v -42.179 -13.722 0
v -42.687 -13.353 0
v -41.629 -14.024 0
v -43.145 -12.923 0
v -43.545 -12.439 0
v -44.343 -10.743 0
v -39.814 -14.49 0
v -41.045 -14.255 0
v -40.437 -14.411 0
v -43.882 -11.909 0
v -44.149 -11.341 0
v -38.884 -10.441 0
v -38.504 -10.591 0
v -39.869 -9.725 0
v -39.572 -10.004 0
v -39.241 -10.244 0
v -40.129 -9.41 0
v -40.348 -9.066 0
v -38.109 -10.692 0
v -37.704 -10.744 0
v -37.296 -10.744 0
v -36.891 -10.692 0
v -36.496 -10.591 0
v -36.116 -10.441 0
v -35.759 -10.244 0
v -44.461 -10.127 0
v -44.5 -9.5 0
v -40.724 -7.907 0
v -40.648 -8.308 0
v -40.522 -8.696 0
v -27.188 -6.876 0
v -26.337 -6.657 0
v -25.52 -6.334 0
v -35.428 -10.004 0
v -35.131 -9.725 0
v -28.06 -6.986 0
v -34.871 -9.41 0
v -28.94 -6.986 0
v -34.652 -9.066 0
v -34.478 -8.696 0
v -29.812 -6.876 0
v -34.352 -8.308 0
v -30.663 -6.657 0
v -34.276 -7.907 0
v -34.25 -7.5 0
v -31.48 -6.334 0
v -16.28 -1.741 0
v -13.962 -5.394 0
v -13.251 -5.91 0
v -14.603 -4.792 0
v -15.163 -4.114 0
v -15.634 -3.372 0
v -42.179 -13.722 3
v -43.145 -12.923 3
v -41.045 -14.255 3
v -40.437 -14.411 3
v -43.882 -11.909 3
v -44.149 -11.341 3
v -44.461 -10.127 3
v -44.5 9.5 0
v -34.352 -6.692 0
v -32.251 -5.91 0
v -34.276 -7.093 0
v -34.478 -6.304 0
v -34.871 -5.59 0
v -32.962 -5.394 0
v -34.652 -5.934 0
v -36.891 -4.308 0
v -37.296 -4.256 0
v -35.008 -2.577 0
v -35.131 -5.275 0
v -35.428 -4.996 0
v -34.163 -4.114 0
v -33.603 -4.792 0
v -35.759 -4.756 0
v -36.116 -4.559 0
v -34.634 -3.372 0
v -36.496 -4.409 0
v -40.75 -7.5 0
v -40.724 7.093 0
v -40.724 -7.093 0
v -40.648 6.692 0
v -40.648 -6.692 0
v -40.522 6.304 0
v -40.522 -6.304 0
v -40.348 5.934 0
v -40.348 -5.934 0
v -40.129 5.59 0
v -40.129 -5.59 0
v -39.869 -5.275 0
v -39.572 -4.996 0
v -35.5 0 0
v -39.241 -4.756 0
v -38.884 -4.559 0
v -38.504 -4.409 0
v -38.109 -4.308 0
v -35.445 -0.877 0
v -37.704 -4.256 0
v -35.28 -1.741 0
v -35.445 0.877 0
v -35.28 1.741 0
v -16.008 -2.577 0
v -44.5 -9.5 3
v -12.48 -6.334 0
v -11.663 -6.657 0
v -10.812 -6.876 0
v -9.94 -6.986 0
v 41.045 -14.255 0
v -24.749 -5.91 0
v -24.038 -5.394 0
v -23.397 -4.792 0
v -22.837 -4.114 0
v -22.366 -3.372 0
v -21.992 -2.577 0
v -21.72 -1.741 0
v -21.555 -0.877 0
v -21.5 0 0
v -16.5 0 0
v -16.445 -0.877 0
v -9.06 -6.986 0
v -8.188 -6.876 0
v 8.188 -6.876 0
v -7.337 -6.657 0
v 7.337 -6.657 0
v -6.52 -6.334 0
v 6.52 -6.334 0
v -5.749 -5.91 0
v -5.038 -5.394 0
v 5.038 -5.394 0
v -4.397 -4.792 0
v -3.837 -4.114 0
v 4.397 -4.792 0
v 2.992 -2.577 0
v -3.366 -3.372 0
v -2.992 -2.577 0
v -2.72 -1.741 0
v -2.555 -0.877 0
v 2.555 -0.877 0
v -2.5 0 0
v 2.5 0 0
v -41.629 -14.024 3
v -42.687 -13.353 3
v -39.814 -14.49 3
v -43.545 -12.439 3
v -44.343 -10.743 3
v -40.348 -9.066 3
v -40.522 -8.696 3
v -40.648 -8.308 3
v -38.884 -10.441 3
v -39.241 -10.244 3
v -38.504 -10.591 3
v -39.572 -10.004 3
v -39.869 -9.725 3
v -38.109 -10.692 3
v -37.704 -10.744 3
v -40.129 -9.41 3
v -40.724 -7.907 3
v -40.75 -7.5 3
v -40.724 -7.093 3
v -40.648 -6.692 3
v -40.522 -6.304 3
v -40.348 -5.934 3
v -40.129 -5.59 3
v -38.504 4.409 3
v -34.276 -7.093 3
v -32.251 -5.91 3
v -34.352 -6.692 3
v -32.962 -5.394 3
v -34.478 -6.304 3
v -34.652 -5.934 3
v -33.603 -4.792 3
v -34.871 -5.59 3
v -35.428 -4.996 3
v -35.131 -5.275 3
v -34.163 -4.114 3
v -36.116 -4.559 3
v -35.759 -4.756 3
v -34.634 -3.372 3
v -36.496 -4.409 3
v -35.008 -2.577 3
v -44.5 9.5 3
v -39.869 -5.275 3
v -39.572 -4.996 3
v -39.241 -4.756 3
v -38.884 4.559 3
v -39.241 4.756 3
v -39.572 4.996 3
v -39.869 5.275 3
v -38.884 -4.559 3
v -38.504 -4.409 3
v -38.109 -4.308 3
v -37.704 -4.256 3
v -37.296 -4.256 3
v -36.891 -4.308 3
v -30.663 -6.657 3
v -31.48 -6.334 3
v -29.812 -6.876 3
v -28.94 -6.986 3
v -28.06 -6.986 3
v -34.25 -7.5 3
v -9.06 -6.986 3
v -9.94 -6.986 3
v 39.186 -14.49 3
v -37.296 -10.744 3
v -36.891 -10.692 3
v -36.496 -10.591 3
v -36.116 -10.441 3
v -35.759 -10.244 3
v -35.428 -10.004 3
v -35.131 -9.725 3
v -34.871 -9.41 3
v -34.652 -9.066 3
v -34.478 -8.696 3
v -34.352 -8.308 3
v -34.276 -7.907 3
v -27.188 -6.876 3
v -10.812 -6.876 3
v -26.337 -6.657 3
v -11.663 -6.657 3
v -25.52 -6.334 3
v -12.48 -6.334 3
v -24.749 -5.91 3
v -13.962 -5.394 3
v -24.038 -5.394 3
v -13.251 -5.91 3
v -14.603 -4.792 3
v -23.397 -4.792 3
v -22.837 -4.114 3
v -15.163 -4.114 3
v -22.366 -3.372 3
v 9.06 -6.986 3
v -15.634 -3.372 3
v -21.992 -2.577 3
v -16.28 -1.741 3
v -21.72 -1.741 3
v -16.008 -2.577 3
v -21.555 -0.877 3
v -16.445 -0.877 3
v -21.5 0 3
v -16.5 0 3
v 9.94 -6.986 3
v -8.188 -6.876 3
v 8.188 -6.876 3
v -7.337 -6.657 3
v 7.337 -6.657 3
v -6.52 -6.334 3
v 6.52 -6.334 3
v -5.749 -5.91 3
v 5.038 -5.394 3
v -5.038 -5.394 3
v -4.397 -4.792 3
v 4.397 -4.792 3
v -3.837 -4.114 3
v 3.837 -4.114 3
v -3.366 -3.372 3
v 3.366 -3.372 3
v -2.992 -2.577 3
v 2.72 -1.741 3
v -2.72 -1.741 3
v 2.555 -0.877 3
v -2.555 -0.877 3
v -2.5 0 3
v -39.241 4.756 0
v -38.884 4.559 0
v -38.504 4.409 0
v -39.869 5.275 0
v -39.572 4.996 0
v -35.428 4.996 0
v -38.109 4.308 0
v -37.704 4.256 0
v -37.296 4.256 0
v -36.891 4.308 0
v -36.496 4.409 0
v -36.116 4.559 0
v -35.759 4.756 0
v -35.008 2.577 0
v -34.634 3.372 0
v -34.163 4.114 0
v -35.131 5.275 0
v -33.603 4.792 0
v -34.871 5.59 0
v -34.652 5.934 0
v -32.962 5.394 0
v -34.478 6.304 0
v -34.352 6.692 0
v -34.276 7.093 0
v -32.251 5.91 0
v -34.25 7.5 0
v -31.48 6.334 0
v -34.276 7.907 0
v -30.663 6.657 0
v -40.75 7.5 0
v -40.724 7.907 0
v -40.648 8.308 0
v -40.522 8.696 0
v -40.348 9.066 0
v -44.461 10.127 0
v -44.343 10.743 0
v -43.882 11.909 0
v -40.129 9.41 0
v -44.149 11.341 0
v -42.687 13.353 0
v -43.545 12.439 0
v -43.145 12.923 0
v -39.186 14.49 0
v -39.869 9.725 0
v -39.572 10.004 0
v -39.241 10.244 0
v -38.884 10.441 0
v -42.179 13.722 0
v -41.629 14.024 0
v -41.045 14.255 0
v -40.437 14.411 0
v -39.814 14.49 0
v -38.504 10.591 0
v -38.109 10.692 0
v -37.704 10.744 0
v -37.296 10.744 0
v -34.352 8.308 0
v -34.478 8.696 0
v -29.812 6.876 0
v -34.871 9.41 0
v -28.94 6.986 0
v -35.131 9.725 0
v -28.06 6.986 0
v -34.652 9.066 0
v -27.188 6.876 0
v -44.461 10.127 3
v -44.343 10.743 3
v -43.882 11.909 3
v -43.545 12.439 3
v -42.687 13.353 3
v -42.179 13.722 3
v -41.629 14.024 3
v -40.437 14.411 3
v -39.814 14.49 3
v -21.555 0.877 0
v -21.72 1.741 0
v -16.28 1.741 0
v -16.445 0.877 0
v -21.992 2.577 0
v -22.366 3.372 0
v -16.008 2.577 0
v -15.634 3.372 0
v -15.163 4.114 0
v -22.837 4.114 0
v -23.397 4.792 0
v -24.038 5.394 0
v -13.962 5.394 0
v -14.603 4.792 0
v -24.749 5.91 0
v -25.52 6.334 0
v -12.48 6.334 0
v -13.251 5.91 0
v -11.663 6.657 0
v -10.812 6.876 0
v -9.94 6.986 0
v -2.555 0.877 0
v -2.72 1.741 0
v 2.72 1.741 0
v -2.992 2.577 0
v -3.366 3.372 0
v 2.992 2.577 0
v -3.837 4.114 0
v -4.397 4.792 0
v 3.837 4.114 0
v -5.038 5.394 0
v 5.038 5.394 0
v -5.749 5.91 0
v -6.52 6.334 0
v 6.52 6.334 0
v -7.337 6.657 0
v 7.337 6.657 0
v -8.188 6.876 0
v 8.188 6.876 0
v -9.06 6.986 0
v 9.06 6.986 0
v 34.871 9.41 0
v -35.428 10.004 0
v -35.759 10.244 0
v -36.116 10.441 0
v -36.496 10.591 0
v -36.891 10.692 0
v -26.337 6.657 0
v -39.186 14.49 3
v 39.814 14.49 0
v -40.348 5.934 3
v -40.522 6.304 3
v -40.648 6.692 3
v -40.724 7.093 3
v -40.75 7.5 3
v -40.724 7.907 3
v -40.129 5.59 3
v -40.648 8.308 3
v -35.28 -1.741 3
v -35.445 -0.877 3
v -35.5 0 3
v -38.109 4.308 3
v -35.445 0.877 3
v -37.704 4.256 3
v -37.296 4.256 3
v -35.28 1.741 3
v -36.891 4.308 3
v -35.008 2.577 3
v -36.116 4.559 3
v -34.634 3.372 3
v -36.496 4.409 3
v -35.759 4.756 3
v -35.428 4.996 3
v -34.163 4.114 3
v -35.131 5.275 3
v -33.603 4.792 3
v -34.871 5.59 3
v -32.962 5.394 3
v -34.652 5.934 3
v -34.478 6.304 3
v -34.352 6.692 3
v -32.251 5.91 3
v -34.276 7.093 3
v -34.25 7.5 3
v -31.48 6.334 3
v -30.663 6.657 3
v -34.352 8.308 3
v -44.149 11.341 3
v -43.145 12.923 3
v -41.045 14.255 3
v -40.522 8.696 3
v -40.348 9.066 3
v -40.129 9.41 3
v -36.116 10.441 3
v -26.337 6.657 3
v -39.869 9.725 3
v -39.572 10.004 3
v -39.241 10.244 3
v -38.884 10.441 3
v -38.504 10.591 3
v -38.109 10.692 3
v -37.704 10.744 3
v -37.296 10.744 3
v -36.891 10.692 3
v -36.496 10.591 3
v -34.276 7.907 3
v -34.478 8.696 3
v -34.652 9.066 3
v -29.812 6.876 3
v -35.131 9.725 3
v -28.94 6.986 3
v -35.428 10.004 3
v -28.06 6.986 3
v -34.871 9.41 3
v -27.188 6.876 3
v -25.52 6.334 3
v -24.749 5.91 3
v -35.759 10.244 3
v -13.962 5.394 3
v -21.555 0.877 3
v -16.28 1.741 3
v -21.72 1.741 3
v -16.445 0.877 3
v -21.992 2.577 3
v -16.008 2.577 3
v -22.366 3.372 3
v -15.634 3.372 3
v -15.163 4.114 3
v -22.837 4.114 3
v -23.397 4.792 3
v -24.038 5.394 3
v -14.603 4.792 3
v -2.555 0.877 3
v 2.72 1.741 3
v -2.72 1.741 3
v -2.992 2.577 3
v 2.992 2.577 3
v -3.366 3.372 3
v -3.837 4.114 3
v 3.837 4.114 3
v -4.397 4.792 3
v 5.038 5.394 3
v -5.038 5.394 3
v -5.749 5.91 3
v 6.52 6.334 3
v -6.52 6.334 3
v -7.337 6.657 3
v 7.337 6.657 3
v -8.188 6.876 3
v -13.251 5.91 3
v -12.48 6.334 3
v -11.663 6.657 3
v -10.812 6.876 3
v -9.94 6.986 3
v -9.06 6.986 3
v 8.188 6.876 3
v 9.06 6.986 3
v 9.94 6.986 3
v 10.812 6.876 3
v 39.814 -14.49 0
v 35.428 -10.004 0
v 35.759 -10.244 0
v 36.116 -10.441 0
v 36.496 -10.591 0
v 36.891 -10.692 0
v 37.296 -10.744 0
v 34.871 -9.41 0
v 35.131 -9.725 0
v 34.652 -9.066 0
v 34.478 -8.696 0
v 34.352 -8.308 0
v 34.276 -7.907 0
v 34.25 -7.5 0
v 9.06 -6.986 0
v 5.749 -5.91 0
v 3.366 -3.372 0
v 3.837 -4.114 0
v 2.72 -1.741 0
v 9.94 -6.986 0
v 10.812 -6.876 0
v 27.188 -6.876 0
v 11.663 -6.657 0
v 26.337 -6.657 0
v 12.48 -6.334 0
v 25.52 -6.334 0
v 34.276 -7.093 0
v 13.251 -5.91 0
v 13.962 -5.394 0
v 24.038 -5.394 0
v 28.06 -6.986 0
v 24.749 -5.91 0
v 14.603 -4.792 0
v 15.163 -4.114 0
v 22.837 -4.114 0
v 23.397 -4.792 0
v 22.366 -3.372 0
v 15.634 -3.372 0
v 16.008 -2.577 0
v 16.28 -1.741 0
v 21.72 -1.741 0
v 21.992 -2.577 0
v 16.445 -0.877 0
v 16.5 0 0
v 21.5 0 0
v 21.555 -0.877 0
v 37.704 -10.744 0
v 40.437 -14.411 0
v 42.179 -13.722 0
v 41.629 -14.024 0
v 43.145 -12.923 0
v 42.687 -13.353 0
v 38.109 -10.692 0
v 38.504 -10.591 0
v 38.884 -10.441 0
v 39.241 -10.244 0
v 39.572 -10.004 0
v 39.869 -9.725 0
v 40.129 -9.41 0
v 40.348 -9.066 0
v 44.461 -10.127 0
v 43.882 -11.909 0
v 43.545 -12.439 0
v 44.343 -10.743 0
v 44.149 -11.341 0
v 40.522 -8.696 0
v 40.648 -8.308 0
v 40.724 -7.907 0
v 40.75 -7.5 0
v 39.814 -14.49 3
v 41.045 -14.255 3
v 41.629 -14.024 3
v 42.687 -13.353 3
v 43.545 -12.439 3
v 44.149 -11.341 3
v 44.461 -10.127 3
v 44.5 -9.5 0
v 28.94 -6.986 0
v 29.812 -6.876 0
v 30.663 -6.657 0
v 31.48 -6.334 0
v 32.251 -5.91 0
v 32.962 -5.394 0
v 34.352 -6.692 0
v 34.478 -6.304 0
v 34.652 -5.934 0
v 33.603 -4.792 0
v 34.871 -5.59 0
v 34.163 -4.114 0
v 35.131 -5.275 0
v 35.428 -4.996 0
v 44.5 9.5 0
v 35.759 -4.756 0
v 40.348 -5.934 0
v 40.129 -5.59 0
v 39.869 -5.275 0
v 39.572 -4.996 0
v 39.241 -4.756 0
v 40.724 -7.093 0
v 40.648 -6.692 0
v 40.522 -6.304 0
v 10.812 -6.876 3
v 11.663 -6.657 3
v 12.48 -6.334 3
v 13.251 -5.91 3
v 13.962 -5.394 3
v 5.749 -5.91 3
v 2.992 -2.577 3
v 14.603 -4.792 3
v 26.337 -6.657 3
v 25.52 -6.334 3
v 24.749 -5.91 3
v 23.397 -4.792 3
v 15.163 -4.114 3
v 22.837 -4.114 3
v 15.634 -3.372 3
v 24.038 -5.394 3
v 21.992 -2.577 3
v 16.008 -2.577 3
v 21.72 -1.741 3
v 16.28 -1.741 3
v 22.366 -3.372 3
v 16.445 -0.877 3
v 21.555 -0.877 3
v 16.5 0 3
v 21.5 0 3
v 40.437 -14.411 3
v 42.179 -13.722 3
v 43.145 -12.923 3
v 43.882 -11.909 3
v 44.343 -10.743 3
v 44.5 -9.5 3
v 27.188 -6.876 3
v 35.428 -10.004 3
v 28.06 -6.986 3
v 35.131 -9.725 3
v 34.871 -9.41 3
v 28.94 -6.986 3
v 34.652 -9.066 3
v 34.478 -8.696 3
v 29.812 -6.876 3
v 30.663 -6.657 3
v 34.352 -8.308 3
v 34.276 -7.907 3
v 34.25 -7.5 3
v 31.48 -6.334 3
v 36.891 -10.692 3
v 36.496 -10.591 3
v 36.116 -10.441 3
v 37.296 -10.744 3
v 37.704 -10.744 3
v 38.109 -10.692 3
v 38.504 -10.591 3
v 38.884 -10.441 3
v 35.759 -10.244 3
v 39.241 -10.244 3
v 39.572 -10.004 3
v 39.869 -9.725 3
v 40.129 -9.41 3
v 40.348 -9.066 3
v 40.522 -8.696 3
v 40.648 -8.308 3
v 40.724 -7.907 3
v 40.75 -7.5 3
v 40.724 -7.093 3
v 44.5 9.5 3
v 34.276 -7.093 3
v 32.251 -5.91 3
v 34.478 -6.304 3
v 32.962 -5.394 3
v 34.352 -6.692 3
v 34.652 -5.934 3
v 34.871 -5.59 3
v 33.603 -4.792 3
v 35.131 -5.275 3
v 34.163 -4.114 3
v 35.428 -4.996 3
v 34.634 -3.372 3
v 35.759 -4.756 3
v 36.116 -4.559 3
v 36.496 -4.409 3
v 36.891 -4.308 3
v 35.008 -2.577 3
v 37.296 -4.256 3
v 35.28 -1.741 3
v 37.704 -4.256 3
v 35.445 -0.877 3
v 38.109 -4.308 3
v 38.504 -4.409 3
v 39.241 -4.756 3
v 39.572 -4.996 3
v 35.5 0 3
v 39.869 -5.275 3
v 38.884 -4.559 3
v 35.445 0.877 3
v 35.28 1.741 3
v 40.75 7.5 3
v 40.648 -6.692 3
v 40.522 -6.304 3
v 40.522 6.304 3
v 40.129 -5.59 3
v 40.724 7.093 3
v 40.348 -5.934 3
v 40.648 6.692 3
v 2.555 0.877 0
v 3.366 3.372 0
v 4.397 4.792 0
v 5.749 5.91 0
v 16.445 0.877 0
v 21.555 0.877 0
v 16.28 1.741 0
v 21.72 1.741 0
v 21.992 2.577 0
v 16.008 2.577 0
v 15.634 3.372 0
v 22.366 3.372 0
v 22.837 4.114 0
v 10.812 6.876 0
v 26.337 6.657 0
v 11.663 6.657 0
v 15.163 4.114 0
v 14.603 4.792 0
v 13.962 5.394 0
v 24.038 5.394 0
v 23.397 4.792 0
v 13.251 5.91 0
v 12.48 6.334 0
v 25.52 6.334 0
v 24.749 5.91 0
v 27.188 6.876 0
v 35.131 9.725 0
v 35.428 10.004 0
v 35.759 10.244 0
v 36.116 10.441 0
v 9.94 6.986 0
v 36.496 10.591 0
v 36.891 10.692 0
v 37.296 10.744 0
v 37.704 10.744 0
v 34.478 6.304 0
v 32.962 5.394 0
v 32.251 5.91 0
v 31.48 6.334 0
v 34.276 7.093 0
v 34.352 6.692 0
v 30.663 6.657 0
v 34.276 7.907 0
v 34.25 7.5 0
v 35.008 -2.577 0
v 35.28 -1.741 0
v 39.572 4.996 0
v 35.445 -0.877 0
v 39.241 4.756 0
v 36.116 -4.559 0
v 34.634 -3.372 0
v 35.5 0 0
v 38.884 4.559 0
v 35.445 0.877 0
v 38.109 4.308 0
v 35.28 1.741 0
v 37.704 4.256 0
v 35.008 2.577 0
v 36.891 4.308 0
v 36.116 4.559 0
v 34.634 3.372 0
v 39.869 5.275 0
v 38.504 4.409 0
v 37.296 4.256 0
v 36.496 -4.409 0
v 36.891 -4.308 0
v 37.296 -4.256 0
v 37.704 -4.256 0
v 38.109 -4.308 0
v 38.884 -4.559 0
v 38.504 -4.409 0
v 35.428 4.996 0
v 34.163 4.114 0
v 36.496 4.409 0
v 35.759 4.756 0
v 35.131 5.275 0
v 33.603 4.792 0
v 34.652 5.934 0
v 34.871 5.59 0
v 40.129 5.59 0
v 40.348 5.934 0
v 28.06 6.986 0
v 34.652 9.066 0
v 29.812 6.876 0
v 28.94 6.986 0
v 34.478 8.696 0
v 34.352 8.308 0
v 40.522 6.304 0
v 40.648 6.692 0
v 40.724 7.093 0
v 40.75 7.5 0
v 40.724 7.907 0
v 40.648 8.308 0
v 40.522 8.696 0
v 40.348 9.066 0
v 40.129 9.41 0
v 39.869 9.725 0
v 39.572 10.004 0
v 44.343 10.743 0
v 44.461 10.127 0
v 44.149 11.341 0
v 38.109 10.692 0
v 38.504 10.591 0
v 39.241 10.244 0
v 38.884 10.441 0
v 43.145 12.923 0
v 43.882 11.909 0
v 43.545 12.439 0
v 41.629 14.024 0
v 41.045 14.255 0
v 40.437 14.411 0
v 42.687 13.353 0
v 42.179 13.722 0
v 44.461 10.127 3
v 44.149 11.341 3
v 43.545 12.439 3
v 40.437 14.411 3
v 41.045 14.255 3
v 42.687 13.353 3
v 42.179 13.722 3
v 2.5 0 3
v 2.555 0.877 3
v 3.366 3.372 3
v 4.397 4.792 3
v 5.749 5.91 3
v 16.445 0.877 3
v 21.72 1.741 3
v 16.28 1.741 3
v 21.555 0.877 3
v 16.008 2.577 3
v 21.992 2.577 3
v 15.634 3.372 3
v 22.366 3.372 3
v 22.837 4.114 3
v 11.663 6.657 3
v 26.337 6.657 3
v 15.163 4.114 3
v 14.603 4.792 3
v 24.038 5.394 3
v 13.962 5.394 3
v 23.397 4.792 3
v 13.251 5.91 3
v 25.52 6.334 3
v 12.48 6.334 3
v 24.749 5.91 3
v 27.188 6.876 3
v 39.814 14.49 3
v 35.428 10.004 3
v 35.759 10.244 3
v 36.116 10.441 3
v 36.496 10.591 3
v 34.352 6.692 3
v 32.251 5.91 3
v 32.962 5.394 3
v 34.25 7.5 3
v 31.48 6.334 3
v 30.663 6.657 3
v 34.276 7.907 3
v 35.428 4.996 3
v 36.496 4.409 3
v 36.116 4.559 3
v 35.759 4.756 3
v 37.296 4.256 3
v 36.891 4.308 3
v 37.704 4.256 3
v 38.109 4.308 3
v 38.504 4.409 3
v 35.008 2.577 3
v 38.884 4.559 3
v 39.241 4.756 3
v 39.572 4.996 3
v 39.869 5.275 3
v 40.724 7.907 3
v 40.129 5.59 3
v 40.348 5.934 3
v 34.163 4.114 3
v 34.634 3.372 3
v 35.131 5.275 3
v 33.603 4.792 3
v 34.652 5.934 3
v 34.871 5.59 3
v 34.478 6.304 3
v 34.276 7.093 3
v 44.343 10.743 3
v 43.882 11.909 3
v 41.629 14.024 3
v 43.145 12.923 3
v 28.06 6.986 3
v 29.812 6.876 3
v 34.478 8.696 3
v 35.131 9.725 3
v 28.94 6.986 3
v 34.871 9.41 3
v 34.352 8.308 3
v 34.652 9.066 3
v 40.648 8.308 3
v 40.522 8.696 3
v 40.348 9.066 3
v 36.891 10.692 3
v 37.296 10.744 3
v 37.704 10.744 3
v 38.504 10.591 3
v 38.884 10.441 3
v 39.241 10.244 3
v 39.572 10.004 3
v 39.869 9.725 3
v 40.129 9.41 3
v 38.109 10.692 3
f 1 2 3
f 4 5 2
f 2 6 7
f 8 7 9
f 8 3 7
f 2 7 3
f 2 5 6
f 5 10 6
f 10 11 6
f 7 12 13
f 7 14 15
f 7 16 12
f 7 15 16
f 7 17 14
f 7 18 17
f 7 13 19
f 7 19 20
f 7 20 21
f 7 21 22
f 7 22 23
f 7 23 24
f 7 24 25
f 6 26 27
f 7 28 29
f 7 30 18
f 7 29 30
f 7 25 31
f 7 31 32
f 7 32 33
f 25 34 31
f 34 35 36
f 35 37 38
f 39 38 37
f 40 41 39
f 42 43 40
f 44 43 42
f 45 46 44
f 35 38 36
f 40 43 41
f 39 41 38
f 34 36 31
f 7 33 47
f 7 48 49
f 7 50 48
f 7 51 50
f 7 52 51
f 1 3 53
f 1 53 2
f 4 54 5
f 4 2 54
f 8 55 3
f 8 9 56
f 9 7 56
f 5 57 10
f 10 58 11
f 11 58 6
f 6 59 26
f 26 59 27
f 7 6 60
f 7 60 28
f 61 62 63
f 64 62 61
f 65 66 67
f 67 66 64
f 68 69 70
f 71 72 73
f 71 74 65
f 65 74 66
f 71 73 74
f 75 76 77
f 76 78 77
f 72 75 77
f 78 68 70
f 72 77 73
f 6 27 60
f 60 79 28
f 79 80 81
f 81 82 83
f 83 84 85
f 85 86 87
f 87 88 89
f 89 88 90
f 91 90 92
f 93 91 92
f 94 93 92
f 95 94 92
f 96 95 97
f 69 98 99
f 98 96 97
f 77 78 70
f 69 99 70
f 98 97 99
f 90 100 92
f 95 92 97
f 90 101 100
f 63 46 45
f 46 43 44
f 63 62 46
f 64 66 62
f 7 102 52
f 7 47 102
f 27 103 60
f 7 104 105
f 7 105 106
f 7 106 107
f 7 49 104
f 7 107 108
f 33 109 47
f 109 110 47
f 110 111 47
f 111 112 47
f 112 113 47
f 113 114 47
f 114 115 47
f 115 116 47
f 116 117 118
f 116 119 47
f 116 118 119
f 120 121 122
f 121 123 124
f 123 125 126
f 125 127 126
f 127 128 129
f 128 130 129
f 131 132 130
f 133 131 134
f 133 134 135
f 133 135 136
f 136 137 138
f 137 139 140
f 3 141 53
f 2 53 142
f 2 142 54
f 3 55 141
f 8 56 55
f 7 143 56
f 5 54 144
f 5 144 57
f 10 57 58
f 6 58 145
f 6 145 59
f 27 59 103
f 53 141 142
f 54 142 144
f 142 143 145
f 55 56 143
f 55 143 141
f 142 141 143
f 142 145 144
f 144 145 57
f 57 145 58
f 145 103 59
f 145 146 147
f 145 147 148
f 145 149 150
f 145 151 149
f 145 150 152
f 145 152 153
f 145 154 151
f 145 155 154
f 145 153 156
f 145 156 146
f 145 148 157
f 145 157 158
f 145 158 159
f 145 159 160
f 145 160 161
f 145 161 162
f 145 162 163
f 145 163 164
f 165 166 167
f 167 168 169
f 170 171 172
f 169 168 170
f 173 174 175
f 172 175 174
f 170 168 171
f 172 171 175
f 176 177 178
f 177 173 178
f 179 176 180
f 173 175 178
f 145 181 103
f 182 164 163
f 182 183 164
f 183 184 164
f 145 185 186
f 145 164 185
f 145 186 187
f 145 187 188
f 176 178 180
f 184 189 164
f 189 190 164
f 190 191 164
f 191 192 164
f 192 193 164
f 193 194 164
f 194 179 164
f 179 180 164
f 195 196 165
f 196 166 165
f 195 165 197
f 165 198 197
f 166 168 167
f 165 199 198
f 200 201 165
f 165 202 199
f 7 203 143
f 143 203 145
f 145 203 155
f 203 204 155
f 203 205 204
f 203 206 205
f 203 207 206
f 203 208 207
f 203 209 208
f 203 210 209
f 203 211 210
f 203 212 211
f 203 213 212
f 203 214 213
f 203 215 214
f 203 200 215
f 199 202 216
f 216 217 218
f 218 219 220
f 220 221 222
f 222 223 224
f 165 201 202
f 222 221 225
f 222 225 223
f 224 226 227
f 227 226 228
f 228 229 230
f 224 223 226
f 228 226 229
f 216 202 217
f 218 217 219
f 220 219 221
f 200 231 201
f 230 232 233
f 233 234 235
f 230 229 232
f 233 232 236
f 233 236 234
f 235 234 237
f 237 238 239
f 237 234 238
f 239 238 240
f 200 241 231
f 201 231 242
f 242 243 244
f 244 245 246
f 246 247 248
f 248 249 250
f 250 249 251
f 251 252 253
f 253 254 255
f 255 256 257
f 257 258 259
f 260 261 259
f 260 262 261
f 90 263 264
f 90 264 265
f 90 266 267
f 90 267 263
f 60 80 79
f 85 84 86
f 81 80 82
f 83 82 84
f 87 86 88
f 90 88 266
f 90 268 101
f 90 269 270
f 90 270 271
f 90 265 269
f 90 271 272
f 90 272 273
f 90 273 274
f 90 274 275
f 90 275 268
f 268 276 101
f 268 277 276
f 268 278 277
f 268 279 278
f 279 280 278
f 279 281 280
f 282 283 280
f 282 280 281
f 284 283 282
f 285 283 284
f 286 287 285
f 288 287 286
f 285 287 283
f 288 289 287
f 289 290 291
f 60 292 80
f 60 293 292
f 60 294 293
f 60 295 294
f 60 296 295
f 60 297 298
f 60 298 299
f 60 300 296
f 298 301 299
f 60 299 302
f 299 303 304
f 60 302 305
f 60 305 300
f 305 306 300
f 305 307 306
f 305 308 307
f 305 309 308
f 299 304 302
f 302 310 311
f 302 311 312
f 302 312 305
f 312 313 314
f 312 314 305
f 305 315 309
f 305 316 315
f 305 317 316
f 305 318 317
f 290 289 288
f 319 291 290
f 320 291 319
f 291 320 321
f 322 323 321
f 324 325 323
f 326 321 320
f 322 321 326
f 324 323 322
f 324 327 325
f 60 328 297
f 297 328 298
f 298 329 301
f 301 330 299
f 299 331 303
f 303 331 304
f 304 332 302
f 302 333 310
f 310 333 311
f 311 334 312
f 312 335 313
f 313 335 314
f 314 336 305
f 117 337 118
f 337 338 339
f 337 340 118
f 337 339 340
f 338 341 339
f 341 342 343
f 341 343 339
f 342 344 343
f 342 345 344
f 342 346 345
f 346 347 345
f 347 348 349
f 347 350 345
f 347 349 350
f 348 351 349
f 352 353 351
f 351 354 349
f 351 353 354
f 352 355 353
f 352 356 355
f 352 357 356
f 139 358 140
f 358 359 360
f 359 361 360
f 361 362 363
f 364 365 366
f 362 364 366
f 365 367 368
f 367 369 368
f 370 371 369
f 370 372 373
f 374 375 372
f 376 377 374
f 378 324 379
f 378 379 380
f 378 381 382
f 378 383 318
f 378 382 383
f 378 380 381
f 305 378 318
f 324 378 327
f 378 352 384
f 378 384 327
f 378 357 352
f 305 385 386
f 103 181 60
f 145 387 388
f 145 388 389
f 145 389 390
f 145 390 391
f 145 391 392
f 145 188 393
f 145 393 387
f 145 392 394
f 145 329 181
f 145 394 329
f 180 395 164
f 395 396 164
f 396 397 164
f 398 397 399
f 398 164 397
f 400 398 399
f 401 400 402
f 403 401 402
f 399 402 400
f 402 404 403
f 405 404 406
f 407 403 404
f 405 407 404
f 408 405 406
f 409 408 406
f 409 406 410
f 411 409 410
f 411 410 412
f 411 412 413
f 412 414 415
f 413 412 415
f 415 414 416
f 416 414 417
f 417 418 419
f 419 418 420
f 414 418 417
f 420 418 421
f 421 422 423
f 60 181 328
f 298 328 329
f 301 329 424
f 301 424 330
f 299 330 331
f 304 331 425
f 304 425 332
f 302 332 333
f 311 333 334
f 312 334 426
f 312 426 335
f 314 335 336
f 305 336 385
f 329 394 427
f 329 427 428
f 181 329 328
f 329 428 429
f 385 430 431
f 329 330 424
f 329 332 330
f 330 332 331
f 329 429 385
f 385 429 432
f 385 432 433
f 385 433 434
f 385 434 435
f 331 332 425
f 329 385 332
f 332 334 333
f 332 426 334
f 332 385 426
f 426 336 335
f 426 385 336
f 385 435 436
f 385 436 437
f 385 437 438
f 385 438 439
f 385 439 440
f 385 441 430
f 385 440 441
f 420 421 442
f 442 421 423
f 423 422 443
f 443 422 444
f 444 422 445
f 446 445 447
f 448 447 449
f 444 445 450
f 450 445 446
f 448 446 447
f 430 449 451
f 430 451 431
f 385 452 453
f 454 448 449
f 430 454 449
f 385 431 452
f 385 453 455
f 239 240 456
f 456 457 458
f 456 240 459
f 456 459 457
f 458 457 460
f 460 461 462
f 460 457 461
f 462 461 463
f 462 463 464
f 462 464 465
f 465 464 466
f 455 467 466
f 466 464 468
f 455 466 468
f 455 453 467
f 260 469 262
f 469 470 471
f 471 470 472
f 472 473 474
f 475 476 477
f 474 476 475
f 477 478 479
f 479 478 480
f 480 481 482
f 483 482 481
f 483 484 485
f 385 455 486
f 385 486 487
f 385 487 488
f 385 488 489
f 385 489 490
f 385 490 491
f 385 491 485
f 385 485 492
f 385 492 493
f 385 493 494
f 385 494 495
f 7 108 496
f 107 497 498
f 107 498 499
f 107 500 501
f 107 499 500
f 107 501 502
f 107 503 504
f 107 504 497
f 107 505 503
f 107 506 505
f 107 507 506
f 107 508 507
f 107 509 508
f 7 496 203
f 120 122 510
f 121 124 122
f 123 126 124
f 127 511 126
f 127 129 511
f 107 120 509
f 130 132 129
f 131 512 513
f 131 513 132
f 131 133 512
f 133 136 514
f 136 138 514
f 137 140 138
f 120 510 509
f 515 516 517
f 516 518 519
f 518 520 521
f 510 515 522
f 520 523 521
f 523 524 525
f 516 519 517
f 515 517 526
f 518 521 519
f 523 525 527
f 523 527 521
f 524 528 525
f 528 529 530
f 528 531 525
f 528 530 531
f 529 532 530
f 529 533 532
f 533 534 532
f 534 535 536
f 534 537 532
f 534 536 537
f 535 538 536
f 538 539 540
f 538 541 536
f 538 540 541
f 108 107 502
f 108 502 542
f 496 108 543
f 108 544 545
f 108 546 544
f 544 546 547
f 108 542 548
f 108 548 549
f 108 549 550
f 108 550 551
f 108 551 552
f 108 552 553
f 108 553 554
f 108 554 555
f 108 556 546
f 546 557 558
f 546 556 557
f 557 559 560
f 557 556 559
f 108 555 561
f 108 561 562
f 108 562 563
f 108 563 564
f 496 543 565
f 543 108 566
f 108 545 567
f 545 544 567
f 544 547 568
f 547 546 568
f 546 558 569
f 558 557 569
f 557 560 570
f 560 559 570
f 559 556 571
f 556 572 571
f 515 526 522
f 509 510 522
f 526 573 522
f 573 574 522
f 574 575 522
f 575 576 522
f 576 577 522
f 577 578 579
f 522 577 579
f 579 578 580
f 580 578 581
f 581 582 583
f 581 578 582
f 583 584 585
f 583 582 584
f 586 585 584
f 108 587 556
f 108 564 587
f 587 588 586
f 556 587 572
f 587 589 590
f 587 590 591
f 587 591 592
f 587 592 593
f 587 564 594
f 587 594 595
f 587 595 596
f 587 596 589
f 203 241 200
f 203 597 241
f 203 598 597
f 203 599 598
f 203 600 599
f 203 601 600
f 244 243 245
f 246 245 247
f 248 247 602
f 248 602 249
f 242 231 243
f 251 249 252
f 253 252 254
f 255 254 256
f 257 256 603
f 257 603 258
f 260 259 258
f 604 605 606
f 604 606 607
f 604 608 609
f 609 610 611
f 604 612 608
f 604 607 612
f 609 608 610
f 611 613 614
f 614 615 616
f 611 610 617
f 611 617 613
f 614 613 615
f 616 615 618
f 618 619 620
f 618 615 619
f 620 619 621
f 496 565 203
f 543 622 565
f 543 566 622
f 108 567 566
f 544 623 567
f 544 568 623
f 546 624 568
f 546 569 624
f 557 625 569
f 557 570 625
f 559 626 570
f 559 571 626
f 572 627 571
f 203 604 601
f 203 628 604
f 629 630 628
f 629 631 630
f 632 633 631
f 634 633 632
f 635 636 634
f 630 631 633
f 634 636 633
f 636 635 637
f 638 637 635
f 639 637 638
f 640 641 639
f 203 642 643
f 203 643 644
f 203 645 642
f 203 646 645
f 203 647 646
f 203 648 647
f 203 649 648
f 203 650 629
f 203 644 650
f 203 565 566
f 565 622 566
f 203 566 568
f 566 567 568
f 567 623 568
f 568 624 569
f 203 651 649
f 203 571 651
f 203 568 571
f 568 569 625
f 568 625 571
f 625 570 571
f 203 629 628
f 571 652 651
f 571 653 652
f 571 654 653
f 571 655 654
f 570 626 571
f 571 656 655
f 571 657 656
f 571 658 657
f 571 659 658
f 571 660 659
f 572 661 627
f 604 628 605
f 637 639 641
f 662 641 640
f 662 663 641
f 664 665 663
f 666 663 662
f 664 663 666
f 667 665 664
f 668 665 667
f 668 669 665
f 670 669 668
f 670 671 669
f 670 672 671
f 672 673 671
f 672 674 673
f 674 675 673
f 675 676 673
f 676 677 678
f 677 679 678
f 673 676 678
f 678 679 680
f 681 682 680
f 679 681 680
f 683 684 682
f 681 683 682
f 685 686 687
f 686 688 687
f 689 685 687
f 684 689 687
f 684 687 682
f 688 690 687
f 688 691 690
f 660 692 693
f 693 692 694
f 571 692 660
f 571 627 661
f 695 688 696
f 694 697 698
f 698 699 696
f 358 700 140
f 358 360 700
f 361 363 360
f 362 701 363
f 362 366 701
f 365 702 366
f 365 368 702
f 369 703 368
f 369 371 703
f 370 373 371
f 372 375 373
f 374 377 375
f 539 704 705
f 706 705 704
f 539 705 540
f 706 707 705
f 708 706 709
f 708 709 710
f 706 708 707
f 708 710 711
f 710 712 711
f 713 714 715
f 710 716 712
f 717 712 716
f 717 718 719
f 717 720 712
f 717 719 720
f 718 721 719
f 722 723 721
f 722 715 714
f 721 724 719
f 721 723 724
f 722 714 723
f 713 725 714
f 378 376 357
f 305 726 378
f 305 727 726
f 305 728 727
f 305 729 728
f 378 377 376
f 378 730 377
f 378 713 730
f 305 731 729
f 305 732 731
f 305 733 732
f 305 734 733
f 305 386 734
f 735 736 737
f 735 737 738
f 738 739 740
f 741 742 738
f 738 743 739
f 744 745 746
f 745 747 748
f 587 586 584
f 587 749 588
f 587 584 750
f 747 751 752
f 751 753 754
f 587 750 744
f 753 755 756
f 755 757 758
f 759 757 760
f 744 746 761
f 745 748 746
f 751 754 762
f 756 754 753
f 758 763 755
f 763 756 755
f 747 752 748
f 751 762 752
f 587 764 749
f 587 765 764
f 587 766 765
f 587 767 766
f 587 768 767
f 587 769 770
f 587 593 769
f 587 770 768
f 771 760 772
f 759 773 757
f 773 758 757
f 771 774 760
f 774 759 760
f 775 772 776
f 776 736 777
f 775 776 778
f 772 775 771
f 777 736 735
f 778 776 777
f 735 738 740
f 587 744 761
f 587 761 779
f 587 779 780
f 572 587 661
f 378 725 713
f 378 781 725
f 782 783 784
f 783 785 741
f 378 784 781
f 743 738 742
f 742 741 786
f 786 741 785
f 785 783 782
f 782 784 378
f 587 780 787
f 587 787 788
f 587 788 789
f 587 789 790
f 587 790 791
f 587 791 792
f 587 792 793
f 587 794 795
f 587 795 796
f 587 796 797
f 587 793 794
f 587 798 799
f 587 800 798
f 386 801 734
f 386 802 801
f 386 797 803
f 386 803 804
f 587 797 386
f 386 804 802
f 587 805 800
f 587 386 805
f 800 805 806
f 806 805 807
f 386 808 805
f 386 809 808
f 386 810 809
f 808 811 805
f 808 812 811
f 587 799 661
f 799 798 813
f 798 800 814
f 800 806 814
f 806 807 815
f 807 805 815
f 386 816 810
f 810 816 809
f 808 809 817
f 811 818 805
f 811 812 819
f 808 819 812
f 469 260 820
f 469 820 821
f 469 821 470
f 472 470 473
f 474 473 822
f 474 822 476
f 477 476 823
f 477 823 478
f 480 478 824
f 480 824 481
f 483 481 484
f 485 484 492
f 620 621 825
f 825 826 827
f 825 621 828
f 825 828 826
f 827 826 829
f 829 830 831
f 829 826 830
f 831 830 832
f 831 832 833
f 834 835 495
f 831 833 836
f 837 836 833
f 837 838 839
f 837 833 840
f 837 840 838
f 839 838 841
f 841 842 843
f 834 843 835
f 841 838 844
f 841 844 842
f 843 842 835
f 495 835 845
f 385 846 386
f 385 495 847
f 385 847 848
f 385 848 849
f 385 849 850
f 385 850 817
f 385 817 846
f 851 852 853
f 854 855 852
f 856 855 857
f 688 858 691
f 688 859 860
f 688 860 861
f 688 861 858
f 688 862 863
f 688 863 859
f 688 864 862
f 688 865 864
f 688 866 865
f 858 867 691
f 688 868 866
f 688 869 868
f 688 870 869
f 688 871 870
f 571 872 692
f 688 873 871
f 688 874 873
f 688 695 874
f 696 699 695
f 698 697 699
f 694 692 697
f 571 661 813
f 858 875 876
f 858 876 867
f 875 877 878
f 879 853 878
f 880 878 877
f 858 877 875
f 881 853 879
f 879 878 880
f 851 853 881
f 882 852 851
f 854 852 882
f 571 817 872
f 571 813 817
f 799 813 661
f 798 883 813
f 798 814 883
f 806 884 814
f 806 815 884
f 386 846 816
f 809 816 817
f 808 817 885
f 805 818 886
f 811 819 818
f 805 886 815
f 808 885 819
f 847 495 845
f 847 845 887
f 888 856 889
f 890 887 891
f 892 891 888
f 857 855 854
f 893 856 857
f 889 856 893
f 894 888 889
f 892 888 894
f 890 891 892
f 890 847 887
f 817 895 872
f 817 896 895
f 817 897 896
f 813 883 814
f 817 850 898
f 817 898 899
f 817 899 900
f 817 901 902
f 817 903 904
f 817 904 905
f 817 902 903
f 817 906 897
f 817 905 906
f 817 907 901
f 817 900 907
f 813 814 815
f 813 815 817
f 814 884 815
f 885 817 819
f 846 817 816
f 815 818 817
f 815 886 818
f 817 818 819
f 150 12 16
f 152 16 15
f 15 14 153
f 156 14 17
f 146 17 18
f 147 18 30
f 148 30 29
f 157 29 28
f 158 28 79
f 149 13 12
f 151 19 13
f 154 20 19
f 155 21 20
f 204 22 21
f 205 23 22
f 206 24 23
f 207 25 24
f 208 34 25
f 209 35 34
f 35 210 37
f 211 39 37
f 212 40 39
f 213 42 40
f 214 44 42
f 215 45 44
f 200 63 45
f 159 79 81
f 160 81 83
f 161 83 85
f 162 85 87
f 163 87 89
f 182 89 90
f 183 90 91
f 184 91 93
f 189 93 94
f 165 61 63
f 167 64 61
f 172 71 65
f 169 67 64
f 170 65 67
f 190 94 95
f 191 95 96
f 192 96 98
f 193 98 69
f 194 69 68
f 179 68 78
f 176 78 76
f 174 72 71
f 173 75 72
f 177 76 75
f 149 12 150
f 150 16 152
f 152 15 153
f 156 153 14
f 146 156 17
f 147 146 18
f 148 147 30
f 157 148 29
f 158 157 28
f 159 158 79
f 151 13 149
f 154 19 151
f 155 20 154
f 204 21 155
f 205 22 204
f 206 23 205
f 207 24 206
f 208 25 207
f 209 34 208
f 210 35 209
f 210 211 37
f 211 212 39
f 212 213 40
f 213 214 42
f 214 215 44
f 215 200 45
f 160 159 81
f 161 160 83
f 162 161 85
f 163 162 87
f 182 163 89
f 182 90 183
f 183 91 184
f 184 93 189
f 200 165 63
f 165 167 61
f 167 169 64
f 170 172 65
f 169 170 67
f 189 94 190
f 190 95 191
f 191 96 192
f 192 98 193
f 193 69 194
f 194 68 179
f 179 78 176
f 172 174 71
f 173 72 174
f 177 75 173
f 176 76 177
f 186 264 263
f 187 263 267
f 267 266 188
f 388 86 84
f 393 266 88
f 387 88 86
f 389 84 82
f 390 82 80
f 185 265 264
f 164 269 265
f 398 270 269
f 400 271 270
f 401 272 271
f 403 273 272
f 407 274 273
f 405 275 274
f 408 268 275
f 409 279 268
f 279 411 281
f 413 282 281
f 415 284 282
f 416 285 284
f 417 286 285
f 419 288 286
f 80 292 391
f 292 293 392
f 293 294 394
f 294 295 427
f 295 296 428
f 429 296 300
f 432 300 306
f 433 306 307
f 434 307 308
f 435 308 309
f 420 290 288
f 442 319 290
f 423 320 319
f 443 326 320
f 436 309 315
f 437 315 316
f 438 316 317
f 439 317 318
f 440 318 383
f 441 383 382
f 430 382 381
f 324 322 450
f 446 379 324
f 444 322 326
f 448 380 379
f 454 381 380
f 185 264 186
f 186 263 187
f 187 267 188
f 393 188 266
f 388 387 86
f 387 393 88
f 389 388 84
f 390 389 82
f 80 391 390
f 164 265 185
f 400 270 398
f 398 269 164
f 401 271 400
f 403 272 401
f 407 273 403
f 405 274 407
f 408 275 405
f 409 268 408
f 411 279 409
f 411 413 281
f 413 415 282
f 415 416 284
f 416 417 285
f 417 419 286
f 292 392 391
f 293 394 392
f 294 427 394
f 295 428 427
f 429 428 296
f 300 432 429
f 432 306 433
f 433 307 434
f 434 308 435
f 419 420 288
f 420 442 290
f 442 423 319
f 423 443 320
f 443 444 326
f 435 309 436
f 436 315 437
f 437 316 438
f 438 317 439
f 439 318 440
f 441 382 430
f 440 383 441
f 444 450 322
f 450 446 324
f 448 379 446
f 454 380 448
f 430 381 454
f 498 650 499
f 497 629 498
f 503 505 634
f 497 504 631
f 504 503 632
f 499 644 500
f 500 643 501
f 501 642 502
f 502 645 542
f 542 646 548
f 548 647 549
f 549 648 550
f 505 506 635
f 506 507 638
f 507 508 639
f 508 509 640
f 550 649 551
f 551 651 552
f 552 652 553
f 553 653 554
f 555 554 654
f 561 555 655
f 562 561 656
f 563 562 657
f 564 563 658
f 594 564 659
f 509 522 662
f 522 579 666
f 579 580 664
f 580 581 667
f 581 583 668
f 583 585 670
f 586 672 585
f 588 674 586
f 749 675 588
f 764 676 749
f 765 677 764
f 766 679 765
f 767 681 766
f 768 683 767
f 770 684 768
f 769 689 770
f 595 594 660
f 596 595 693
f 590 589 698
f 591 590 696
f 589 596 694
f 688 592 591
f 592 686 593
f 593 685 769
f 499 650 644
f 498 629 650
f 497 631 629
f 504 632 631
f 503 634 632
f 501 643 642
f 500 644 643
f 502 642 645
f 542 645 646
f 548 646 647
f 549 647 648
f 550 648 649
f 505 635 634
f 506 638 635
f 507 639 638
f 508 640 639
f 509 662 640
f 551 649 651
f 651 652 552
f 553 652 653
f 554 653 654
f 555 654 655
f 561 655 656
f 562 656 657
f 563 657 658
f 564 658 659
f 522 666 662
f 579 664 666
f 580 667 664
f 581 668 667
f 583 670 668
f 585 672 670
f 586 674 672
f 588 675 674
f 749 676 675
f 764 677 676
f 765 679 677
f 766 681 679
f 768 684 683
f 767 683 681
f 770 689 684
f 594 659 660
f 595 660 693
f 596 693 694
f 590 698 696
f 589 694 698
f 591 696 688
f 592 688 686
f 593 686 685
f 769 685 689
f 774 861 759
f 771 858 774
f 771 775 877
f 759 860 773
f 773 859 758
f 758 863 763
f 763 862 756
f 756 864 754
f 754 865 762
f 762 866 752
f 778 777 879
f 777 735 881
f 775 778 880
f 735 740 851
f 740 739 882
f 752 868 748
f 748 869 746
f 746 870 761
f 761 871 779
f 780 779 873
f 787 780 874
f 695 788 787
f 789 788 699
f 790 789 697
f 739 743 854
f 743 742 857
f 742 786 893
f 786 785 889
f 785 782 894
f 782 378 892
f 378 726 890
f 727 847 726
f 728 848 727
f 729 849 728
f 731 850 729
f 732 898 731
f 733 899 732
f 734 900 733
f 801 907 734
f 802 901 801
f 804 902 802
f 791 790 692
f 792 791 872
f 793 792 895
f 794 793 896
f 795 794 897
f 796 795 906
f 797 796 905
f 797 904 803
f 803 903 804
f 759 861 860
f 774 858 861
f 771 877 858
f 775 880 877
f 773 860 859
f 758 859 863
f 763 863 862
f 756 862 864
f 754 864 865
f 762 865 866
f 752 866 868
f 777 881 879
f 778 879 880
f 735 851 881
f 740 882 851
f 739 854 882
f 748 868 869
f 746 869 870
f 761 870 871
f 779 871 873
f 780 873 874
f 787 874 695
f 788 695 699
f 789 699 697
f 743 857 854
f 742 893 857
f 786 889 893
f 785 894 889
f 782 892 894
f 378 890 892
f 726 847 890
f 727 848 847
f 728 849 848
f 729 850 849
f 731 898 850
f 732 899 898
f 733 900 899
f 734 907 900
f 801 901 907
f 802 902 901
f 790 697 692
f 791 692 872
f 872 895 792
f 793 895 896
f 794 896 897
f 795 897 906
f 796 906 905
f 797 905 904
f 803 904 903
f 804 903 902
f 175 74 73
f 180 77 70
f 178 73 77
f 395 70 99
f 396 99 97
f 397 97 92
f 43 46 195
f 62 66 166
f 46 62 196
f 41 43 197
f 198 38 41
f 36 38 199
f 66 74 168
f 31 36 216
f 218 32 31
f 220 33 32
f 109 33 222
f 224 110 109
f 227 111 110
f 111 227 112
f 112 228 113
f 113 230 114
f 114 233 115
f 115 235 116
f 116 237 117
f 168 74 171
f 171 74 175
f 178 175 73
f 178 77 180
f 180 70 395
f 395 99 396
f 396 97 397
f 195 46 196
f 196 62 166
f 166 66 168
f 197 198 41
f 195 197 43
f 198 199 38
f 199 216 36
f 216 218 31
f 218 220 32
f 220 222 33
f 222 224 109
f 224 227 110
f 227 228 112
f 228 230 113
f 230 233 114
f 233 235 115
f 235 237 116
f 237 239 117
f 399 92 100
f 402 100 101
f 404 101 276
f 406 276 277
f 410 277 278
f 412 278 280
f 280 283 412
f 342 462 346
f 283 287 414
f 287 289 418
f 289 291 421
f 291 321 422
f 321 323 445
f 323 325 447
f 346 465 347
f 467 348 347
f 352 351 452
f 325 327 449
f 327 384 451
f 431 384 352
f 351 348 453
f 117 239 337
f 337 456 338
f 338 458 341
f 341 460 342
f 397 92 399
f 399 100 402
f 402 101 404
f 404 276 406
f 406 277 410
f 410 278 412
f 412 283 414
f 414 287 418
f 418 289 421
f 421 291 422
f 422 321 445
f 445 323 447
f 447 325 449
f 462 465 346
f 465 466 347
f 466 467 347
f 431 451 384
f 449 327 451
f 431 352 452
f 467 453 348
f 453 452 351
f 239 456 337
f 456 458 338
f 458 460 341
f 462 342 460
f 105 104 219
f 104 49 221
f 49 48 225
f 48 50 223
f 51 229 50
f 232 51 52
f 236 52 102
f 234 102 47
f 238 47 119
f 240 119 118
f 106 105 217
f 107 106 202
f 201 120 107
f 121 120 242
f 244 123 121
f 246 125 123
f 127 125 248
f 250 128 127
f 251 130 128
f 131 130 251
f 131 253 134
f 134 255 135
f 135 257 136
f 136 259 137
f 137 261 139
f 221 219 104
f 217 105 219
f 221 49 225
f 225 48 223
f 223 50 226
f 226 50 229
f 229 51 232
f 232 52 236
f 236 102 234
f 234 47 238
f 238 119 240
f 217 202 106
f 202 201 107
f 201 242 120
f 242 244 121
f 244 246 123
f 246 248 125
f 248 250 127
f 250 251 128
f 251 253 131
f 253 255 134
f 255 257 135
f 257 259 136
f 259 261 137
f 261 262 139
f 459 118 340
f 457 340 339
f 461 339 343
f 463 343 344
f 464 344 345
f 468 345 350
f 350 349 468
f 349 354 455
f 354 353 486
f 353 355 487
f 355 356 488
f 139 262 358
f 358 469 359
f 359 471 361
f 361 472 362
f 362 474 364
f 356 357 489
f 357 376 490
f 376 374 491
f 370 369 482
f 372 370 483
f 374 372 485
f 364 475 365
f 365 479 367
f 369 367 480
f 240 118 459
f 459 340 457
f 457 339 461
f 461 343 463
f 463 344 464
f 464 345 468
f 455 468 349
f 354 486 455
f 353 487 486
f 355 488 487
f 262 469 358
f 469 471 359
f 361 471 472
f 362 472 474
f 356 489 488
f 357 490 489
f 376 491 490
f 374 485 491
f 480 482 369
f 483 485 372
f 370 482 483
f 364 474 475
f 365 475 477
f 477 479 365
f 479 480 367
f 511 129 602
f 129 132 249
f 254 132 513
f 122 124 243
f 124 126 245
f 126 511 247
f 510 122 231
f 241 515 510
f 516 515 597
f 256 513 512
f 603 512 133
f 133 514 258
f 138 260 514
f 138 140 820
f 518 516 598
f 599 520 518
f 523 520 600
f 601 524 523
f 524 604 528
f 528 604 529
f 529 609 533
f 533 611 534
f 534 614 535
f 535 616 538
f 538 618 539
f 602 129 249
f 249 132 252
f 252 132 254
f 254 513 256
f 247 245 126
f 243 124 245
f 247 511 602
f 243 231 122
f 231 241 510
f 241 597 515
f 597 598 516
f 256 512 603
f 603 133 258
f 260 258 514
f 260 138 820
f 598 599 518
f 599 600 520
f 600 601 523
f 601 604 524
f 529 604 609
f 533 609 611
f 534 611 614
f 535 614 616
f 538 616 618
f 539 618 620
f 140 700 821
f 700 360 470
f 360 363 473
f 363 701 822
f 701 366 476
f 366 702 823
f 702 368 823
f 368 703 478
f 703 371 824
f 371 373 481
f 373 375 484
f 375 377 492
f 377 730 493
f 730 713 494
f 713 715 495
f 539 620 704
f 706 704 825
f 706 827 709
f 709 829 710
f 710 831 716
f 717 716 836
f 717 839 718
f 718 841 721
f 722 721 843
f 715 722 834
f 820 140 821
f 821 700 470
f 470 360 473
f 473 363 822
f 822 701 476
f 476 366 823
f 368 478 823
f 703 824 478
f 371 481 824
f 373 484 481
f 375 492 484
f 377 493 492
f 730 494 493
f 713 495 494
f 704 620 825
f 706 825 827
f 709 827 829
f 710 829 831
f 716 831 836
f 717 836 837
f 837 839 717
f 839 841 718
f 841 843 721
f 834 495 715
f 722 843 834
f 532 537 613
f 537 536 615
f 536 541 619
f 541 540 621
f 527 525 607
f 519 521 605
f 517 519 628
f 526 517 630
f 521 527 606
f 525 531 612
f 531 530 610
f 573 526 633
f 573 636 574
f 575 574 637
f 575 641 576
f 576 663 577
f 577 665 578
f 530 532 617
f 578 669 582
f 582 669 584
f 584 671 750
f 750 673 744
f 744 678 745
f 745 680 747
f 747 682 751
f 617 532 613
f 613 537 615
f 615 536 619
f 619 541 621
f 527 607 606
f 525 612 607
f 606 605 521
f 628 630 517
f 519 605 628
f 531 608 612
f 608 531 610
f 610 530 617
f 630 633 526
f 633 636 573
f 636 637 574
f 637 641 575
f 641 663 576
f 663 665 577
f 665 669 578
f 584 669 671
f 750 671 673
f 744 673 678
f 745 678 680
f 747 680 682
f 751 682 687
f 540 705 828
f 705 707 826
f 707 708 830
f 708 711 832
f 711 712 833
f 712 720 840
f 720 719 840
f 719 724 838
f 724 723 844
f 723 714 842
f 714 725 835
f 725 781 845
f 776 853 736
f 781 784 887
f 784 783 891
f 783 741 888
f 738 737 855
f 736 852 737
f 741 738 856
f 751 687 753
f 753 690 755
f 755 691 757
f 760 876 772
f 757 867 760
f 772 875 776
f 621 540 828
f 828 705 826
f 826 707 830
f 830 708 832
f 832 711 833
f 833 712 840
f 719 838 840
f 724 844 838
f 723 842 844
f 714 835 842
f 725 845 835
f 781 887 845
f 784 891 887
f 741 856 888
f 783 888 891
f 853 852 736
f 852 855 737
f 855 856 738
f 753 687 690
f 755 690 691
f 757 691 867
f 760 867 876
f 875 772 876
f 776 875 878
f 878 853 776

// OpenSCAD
$fn = 50;

difference() {
	union() {
		hull() {
			translate(v = [-39.5, 9.5, 0]) {
				cylinder(h = 3, r = 5);
			}
			translate(v = [39.5, 9.5, 0]) {
				cylinder(h = 3, r = 5);
			}
			translate(v = [-39.5, -9.5, 0]) {
				cylinder(h = 3, r = 5);
			}
			translate(v = [39.5, -9.5, 0]) {
				cylinder(h = 3, r = 5);
			}
		}
	}
	union() {
		translate(v = [-37.5, -7.5, -100.0]) {
			cylinder(h = 200, r = 3.25);
		}
		translate(v = [-37.5, 7.5, -100.0]) {
			cylinder(h = 200, r = 3.25);
		}
		translate(v = [37.5, -7.5, -100.0]) {
			cylinder(h = 200, r = 3.25);
		}
		translate(v = [37.5, 7.5, -100.0]) {
			cylinder(h = 200, r = 3.25);
		}
		translate(v = [-37.5, -7.5, -100.0]) {
			cylinder(h = 200, r = 1.8);
		}
		translate(v = [-37.5, 7.5, -100.0]) {
			cylinder(h = 200, r = 1.8);
		}
		translate(v = [37.5, -7.5, -100.0]) {
			cylinder(h = 200, r = 1.8);
		}
		translate(v = [37.5, 7.5, -100.0]) {
			cylinder(h = 200, r = 1.8);
		}
		translate(v = [-28.5, 0, 0.0]) {
			cylinder(h = 3, r = 7.0);
		}
		translate(v = [-9.5, 0, 0.0]) {
			cylinder(h = 3, r = 7.0);
		}
		translate(v = [9.5, 0, 0.0]) {
			cylinder(h = 3, r = 7.0);
		}
		translate(v = [28.5, 0, 0.0]) {
			cylinder(h = 3, r = 7.0);
		}
	}
}
